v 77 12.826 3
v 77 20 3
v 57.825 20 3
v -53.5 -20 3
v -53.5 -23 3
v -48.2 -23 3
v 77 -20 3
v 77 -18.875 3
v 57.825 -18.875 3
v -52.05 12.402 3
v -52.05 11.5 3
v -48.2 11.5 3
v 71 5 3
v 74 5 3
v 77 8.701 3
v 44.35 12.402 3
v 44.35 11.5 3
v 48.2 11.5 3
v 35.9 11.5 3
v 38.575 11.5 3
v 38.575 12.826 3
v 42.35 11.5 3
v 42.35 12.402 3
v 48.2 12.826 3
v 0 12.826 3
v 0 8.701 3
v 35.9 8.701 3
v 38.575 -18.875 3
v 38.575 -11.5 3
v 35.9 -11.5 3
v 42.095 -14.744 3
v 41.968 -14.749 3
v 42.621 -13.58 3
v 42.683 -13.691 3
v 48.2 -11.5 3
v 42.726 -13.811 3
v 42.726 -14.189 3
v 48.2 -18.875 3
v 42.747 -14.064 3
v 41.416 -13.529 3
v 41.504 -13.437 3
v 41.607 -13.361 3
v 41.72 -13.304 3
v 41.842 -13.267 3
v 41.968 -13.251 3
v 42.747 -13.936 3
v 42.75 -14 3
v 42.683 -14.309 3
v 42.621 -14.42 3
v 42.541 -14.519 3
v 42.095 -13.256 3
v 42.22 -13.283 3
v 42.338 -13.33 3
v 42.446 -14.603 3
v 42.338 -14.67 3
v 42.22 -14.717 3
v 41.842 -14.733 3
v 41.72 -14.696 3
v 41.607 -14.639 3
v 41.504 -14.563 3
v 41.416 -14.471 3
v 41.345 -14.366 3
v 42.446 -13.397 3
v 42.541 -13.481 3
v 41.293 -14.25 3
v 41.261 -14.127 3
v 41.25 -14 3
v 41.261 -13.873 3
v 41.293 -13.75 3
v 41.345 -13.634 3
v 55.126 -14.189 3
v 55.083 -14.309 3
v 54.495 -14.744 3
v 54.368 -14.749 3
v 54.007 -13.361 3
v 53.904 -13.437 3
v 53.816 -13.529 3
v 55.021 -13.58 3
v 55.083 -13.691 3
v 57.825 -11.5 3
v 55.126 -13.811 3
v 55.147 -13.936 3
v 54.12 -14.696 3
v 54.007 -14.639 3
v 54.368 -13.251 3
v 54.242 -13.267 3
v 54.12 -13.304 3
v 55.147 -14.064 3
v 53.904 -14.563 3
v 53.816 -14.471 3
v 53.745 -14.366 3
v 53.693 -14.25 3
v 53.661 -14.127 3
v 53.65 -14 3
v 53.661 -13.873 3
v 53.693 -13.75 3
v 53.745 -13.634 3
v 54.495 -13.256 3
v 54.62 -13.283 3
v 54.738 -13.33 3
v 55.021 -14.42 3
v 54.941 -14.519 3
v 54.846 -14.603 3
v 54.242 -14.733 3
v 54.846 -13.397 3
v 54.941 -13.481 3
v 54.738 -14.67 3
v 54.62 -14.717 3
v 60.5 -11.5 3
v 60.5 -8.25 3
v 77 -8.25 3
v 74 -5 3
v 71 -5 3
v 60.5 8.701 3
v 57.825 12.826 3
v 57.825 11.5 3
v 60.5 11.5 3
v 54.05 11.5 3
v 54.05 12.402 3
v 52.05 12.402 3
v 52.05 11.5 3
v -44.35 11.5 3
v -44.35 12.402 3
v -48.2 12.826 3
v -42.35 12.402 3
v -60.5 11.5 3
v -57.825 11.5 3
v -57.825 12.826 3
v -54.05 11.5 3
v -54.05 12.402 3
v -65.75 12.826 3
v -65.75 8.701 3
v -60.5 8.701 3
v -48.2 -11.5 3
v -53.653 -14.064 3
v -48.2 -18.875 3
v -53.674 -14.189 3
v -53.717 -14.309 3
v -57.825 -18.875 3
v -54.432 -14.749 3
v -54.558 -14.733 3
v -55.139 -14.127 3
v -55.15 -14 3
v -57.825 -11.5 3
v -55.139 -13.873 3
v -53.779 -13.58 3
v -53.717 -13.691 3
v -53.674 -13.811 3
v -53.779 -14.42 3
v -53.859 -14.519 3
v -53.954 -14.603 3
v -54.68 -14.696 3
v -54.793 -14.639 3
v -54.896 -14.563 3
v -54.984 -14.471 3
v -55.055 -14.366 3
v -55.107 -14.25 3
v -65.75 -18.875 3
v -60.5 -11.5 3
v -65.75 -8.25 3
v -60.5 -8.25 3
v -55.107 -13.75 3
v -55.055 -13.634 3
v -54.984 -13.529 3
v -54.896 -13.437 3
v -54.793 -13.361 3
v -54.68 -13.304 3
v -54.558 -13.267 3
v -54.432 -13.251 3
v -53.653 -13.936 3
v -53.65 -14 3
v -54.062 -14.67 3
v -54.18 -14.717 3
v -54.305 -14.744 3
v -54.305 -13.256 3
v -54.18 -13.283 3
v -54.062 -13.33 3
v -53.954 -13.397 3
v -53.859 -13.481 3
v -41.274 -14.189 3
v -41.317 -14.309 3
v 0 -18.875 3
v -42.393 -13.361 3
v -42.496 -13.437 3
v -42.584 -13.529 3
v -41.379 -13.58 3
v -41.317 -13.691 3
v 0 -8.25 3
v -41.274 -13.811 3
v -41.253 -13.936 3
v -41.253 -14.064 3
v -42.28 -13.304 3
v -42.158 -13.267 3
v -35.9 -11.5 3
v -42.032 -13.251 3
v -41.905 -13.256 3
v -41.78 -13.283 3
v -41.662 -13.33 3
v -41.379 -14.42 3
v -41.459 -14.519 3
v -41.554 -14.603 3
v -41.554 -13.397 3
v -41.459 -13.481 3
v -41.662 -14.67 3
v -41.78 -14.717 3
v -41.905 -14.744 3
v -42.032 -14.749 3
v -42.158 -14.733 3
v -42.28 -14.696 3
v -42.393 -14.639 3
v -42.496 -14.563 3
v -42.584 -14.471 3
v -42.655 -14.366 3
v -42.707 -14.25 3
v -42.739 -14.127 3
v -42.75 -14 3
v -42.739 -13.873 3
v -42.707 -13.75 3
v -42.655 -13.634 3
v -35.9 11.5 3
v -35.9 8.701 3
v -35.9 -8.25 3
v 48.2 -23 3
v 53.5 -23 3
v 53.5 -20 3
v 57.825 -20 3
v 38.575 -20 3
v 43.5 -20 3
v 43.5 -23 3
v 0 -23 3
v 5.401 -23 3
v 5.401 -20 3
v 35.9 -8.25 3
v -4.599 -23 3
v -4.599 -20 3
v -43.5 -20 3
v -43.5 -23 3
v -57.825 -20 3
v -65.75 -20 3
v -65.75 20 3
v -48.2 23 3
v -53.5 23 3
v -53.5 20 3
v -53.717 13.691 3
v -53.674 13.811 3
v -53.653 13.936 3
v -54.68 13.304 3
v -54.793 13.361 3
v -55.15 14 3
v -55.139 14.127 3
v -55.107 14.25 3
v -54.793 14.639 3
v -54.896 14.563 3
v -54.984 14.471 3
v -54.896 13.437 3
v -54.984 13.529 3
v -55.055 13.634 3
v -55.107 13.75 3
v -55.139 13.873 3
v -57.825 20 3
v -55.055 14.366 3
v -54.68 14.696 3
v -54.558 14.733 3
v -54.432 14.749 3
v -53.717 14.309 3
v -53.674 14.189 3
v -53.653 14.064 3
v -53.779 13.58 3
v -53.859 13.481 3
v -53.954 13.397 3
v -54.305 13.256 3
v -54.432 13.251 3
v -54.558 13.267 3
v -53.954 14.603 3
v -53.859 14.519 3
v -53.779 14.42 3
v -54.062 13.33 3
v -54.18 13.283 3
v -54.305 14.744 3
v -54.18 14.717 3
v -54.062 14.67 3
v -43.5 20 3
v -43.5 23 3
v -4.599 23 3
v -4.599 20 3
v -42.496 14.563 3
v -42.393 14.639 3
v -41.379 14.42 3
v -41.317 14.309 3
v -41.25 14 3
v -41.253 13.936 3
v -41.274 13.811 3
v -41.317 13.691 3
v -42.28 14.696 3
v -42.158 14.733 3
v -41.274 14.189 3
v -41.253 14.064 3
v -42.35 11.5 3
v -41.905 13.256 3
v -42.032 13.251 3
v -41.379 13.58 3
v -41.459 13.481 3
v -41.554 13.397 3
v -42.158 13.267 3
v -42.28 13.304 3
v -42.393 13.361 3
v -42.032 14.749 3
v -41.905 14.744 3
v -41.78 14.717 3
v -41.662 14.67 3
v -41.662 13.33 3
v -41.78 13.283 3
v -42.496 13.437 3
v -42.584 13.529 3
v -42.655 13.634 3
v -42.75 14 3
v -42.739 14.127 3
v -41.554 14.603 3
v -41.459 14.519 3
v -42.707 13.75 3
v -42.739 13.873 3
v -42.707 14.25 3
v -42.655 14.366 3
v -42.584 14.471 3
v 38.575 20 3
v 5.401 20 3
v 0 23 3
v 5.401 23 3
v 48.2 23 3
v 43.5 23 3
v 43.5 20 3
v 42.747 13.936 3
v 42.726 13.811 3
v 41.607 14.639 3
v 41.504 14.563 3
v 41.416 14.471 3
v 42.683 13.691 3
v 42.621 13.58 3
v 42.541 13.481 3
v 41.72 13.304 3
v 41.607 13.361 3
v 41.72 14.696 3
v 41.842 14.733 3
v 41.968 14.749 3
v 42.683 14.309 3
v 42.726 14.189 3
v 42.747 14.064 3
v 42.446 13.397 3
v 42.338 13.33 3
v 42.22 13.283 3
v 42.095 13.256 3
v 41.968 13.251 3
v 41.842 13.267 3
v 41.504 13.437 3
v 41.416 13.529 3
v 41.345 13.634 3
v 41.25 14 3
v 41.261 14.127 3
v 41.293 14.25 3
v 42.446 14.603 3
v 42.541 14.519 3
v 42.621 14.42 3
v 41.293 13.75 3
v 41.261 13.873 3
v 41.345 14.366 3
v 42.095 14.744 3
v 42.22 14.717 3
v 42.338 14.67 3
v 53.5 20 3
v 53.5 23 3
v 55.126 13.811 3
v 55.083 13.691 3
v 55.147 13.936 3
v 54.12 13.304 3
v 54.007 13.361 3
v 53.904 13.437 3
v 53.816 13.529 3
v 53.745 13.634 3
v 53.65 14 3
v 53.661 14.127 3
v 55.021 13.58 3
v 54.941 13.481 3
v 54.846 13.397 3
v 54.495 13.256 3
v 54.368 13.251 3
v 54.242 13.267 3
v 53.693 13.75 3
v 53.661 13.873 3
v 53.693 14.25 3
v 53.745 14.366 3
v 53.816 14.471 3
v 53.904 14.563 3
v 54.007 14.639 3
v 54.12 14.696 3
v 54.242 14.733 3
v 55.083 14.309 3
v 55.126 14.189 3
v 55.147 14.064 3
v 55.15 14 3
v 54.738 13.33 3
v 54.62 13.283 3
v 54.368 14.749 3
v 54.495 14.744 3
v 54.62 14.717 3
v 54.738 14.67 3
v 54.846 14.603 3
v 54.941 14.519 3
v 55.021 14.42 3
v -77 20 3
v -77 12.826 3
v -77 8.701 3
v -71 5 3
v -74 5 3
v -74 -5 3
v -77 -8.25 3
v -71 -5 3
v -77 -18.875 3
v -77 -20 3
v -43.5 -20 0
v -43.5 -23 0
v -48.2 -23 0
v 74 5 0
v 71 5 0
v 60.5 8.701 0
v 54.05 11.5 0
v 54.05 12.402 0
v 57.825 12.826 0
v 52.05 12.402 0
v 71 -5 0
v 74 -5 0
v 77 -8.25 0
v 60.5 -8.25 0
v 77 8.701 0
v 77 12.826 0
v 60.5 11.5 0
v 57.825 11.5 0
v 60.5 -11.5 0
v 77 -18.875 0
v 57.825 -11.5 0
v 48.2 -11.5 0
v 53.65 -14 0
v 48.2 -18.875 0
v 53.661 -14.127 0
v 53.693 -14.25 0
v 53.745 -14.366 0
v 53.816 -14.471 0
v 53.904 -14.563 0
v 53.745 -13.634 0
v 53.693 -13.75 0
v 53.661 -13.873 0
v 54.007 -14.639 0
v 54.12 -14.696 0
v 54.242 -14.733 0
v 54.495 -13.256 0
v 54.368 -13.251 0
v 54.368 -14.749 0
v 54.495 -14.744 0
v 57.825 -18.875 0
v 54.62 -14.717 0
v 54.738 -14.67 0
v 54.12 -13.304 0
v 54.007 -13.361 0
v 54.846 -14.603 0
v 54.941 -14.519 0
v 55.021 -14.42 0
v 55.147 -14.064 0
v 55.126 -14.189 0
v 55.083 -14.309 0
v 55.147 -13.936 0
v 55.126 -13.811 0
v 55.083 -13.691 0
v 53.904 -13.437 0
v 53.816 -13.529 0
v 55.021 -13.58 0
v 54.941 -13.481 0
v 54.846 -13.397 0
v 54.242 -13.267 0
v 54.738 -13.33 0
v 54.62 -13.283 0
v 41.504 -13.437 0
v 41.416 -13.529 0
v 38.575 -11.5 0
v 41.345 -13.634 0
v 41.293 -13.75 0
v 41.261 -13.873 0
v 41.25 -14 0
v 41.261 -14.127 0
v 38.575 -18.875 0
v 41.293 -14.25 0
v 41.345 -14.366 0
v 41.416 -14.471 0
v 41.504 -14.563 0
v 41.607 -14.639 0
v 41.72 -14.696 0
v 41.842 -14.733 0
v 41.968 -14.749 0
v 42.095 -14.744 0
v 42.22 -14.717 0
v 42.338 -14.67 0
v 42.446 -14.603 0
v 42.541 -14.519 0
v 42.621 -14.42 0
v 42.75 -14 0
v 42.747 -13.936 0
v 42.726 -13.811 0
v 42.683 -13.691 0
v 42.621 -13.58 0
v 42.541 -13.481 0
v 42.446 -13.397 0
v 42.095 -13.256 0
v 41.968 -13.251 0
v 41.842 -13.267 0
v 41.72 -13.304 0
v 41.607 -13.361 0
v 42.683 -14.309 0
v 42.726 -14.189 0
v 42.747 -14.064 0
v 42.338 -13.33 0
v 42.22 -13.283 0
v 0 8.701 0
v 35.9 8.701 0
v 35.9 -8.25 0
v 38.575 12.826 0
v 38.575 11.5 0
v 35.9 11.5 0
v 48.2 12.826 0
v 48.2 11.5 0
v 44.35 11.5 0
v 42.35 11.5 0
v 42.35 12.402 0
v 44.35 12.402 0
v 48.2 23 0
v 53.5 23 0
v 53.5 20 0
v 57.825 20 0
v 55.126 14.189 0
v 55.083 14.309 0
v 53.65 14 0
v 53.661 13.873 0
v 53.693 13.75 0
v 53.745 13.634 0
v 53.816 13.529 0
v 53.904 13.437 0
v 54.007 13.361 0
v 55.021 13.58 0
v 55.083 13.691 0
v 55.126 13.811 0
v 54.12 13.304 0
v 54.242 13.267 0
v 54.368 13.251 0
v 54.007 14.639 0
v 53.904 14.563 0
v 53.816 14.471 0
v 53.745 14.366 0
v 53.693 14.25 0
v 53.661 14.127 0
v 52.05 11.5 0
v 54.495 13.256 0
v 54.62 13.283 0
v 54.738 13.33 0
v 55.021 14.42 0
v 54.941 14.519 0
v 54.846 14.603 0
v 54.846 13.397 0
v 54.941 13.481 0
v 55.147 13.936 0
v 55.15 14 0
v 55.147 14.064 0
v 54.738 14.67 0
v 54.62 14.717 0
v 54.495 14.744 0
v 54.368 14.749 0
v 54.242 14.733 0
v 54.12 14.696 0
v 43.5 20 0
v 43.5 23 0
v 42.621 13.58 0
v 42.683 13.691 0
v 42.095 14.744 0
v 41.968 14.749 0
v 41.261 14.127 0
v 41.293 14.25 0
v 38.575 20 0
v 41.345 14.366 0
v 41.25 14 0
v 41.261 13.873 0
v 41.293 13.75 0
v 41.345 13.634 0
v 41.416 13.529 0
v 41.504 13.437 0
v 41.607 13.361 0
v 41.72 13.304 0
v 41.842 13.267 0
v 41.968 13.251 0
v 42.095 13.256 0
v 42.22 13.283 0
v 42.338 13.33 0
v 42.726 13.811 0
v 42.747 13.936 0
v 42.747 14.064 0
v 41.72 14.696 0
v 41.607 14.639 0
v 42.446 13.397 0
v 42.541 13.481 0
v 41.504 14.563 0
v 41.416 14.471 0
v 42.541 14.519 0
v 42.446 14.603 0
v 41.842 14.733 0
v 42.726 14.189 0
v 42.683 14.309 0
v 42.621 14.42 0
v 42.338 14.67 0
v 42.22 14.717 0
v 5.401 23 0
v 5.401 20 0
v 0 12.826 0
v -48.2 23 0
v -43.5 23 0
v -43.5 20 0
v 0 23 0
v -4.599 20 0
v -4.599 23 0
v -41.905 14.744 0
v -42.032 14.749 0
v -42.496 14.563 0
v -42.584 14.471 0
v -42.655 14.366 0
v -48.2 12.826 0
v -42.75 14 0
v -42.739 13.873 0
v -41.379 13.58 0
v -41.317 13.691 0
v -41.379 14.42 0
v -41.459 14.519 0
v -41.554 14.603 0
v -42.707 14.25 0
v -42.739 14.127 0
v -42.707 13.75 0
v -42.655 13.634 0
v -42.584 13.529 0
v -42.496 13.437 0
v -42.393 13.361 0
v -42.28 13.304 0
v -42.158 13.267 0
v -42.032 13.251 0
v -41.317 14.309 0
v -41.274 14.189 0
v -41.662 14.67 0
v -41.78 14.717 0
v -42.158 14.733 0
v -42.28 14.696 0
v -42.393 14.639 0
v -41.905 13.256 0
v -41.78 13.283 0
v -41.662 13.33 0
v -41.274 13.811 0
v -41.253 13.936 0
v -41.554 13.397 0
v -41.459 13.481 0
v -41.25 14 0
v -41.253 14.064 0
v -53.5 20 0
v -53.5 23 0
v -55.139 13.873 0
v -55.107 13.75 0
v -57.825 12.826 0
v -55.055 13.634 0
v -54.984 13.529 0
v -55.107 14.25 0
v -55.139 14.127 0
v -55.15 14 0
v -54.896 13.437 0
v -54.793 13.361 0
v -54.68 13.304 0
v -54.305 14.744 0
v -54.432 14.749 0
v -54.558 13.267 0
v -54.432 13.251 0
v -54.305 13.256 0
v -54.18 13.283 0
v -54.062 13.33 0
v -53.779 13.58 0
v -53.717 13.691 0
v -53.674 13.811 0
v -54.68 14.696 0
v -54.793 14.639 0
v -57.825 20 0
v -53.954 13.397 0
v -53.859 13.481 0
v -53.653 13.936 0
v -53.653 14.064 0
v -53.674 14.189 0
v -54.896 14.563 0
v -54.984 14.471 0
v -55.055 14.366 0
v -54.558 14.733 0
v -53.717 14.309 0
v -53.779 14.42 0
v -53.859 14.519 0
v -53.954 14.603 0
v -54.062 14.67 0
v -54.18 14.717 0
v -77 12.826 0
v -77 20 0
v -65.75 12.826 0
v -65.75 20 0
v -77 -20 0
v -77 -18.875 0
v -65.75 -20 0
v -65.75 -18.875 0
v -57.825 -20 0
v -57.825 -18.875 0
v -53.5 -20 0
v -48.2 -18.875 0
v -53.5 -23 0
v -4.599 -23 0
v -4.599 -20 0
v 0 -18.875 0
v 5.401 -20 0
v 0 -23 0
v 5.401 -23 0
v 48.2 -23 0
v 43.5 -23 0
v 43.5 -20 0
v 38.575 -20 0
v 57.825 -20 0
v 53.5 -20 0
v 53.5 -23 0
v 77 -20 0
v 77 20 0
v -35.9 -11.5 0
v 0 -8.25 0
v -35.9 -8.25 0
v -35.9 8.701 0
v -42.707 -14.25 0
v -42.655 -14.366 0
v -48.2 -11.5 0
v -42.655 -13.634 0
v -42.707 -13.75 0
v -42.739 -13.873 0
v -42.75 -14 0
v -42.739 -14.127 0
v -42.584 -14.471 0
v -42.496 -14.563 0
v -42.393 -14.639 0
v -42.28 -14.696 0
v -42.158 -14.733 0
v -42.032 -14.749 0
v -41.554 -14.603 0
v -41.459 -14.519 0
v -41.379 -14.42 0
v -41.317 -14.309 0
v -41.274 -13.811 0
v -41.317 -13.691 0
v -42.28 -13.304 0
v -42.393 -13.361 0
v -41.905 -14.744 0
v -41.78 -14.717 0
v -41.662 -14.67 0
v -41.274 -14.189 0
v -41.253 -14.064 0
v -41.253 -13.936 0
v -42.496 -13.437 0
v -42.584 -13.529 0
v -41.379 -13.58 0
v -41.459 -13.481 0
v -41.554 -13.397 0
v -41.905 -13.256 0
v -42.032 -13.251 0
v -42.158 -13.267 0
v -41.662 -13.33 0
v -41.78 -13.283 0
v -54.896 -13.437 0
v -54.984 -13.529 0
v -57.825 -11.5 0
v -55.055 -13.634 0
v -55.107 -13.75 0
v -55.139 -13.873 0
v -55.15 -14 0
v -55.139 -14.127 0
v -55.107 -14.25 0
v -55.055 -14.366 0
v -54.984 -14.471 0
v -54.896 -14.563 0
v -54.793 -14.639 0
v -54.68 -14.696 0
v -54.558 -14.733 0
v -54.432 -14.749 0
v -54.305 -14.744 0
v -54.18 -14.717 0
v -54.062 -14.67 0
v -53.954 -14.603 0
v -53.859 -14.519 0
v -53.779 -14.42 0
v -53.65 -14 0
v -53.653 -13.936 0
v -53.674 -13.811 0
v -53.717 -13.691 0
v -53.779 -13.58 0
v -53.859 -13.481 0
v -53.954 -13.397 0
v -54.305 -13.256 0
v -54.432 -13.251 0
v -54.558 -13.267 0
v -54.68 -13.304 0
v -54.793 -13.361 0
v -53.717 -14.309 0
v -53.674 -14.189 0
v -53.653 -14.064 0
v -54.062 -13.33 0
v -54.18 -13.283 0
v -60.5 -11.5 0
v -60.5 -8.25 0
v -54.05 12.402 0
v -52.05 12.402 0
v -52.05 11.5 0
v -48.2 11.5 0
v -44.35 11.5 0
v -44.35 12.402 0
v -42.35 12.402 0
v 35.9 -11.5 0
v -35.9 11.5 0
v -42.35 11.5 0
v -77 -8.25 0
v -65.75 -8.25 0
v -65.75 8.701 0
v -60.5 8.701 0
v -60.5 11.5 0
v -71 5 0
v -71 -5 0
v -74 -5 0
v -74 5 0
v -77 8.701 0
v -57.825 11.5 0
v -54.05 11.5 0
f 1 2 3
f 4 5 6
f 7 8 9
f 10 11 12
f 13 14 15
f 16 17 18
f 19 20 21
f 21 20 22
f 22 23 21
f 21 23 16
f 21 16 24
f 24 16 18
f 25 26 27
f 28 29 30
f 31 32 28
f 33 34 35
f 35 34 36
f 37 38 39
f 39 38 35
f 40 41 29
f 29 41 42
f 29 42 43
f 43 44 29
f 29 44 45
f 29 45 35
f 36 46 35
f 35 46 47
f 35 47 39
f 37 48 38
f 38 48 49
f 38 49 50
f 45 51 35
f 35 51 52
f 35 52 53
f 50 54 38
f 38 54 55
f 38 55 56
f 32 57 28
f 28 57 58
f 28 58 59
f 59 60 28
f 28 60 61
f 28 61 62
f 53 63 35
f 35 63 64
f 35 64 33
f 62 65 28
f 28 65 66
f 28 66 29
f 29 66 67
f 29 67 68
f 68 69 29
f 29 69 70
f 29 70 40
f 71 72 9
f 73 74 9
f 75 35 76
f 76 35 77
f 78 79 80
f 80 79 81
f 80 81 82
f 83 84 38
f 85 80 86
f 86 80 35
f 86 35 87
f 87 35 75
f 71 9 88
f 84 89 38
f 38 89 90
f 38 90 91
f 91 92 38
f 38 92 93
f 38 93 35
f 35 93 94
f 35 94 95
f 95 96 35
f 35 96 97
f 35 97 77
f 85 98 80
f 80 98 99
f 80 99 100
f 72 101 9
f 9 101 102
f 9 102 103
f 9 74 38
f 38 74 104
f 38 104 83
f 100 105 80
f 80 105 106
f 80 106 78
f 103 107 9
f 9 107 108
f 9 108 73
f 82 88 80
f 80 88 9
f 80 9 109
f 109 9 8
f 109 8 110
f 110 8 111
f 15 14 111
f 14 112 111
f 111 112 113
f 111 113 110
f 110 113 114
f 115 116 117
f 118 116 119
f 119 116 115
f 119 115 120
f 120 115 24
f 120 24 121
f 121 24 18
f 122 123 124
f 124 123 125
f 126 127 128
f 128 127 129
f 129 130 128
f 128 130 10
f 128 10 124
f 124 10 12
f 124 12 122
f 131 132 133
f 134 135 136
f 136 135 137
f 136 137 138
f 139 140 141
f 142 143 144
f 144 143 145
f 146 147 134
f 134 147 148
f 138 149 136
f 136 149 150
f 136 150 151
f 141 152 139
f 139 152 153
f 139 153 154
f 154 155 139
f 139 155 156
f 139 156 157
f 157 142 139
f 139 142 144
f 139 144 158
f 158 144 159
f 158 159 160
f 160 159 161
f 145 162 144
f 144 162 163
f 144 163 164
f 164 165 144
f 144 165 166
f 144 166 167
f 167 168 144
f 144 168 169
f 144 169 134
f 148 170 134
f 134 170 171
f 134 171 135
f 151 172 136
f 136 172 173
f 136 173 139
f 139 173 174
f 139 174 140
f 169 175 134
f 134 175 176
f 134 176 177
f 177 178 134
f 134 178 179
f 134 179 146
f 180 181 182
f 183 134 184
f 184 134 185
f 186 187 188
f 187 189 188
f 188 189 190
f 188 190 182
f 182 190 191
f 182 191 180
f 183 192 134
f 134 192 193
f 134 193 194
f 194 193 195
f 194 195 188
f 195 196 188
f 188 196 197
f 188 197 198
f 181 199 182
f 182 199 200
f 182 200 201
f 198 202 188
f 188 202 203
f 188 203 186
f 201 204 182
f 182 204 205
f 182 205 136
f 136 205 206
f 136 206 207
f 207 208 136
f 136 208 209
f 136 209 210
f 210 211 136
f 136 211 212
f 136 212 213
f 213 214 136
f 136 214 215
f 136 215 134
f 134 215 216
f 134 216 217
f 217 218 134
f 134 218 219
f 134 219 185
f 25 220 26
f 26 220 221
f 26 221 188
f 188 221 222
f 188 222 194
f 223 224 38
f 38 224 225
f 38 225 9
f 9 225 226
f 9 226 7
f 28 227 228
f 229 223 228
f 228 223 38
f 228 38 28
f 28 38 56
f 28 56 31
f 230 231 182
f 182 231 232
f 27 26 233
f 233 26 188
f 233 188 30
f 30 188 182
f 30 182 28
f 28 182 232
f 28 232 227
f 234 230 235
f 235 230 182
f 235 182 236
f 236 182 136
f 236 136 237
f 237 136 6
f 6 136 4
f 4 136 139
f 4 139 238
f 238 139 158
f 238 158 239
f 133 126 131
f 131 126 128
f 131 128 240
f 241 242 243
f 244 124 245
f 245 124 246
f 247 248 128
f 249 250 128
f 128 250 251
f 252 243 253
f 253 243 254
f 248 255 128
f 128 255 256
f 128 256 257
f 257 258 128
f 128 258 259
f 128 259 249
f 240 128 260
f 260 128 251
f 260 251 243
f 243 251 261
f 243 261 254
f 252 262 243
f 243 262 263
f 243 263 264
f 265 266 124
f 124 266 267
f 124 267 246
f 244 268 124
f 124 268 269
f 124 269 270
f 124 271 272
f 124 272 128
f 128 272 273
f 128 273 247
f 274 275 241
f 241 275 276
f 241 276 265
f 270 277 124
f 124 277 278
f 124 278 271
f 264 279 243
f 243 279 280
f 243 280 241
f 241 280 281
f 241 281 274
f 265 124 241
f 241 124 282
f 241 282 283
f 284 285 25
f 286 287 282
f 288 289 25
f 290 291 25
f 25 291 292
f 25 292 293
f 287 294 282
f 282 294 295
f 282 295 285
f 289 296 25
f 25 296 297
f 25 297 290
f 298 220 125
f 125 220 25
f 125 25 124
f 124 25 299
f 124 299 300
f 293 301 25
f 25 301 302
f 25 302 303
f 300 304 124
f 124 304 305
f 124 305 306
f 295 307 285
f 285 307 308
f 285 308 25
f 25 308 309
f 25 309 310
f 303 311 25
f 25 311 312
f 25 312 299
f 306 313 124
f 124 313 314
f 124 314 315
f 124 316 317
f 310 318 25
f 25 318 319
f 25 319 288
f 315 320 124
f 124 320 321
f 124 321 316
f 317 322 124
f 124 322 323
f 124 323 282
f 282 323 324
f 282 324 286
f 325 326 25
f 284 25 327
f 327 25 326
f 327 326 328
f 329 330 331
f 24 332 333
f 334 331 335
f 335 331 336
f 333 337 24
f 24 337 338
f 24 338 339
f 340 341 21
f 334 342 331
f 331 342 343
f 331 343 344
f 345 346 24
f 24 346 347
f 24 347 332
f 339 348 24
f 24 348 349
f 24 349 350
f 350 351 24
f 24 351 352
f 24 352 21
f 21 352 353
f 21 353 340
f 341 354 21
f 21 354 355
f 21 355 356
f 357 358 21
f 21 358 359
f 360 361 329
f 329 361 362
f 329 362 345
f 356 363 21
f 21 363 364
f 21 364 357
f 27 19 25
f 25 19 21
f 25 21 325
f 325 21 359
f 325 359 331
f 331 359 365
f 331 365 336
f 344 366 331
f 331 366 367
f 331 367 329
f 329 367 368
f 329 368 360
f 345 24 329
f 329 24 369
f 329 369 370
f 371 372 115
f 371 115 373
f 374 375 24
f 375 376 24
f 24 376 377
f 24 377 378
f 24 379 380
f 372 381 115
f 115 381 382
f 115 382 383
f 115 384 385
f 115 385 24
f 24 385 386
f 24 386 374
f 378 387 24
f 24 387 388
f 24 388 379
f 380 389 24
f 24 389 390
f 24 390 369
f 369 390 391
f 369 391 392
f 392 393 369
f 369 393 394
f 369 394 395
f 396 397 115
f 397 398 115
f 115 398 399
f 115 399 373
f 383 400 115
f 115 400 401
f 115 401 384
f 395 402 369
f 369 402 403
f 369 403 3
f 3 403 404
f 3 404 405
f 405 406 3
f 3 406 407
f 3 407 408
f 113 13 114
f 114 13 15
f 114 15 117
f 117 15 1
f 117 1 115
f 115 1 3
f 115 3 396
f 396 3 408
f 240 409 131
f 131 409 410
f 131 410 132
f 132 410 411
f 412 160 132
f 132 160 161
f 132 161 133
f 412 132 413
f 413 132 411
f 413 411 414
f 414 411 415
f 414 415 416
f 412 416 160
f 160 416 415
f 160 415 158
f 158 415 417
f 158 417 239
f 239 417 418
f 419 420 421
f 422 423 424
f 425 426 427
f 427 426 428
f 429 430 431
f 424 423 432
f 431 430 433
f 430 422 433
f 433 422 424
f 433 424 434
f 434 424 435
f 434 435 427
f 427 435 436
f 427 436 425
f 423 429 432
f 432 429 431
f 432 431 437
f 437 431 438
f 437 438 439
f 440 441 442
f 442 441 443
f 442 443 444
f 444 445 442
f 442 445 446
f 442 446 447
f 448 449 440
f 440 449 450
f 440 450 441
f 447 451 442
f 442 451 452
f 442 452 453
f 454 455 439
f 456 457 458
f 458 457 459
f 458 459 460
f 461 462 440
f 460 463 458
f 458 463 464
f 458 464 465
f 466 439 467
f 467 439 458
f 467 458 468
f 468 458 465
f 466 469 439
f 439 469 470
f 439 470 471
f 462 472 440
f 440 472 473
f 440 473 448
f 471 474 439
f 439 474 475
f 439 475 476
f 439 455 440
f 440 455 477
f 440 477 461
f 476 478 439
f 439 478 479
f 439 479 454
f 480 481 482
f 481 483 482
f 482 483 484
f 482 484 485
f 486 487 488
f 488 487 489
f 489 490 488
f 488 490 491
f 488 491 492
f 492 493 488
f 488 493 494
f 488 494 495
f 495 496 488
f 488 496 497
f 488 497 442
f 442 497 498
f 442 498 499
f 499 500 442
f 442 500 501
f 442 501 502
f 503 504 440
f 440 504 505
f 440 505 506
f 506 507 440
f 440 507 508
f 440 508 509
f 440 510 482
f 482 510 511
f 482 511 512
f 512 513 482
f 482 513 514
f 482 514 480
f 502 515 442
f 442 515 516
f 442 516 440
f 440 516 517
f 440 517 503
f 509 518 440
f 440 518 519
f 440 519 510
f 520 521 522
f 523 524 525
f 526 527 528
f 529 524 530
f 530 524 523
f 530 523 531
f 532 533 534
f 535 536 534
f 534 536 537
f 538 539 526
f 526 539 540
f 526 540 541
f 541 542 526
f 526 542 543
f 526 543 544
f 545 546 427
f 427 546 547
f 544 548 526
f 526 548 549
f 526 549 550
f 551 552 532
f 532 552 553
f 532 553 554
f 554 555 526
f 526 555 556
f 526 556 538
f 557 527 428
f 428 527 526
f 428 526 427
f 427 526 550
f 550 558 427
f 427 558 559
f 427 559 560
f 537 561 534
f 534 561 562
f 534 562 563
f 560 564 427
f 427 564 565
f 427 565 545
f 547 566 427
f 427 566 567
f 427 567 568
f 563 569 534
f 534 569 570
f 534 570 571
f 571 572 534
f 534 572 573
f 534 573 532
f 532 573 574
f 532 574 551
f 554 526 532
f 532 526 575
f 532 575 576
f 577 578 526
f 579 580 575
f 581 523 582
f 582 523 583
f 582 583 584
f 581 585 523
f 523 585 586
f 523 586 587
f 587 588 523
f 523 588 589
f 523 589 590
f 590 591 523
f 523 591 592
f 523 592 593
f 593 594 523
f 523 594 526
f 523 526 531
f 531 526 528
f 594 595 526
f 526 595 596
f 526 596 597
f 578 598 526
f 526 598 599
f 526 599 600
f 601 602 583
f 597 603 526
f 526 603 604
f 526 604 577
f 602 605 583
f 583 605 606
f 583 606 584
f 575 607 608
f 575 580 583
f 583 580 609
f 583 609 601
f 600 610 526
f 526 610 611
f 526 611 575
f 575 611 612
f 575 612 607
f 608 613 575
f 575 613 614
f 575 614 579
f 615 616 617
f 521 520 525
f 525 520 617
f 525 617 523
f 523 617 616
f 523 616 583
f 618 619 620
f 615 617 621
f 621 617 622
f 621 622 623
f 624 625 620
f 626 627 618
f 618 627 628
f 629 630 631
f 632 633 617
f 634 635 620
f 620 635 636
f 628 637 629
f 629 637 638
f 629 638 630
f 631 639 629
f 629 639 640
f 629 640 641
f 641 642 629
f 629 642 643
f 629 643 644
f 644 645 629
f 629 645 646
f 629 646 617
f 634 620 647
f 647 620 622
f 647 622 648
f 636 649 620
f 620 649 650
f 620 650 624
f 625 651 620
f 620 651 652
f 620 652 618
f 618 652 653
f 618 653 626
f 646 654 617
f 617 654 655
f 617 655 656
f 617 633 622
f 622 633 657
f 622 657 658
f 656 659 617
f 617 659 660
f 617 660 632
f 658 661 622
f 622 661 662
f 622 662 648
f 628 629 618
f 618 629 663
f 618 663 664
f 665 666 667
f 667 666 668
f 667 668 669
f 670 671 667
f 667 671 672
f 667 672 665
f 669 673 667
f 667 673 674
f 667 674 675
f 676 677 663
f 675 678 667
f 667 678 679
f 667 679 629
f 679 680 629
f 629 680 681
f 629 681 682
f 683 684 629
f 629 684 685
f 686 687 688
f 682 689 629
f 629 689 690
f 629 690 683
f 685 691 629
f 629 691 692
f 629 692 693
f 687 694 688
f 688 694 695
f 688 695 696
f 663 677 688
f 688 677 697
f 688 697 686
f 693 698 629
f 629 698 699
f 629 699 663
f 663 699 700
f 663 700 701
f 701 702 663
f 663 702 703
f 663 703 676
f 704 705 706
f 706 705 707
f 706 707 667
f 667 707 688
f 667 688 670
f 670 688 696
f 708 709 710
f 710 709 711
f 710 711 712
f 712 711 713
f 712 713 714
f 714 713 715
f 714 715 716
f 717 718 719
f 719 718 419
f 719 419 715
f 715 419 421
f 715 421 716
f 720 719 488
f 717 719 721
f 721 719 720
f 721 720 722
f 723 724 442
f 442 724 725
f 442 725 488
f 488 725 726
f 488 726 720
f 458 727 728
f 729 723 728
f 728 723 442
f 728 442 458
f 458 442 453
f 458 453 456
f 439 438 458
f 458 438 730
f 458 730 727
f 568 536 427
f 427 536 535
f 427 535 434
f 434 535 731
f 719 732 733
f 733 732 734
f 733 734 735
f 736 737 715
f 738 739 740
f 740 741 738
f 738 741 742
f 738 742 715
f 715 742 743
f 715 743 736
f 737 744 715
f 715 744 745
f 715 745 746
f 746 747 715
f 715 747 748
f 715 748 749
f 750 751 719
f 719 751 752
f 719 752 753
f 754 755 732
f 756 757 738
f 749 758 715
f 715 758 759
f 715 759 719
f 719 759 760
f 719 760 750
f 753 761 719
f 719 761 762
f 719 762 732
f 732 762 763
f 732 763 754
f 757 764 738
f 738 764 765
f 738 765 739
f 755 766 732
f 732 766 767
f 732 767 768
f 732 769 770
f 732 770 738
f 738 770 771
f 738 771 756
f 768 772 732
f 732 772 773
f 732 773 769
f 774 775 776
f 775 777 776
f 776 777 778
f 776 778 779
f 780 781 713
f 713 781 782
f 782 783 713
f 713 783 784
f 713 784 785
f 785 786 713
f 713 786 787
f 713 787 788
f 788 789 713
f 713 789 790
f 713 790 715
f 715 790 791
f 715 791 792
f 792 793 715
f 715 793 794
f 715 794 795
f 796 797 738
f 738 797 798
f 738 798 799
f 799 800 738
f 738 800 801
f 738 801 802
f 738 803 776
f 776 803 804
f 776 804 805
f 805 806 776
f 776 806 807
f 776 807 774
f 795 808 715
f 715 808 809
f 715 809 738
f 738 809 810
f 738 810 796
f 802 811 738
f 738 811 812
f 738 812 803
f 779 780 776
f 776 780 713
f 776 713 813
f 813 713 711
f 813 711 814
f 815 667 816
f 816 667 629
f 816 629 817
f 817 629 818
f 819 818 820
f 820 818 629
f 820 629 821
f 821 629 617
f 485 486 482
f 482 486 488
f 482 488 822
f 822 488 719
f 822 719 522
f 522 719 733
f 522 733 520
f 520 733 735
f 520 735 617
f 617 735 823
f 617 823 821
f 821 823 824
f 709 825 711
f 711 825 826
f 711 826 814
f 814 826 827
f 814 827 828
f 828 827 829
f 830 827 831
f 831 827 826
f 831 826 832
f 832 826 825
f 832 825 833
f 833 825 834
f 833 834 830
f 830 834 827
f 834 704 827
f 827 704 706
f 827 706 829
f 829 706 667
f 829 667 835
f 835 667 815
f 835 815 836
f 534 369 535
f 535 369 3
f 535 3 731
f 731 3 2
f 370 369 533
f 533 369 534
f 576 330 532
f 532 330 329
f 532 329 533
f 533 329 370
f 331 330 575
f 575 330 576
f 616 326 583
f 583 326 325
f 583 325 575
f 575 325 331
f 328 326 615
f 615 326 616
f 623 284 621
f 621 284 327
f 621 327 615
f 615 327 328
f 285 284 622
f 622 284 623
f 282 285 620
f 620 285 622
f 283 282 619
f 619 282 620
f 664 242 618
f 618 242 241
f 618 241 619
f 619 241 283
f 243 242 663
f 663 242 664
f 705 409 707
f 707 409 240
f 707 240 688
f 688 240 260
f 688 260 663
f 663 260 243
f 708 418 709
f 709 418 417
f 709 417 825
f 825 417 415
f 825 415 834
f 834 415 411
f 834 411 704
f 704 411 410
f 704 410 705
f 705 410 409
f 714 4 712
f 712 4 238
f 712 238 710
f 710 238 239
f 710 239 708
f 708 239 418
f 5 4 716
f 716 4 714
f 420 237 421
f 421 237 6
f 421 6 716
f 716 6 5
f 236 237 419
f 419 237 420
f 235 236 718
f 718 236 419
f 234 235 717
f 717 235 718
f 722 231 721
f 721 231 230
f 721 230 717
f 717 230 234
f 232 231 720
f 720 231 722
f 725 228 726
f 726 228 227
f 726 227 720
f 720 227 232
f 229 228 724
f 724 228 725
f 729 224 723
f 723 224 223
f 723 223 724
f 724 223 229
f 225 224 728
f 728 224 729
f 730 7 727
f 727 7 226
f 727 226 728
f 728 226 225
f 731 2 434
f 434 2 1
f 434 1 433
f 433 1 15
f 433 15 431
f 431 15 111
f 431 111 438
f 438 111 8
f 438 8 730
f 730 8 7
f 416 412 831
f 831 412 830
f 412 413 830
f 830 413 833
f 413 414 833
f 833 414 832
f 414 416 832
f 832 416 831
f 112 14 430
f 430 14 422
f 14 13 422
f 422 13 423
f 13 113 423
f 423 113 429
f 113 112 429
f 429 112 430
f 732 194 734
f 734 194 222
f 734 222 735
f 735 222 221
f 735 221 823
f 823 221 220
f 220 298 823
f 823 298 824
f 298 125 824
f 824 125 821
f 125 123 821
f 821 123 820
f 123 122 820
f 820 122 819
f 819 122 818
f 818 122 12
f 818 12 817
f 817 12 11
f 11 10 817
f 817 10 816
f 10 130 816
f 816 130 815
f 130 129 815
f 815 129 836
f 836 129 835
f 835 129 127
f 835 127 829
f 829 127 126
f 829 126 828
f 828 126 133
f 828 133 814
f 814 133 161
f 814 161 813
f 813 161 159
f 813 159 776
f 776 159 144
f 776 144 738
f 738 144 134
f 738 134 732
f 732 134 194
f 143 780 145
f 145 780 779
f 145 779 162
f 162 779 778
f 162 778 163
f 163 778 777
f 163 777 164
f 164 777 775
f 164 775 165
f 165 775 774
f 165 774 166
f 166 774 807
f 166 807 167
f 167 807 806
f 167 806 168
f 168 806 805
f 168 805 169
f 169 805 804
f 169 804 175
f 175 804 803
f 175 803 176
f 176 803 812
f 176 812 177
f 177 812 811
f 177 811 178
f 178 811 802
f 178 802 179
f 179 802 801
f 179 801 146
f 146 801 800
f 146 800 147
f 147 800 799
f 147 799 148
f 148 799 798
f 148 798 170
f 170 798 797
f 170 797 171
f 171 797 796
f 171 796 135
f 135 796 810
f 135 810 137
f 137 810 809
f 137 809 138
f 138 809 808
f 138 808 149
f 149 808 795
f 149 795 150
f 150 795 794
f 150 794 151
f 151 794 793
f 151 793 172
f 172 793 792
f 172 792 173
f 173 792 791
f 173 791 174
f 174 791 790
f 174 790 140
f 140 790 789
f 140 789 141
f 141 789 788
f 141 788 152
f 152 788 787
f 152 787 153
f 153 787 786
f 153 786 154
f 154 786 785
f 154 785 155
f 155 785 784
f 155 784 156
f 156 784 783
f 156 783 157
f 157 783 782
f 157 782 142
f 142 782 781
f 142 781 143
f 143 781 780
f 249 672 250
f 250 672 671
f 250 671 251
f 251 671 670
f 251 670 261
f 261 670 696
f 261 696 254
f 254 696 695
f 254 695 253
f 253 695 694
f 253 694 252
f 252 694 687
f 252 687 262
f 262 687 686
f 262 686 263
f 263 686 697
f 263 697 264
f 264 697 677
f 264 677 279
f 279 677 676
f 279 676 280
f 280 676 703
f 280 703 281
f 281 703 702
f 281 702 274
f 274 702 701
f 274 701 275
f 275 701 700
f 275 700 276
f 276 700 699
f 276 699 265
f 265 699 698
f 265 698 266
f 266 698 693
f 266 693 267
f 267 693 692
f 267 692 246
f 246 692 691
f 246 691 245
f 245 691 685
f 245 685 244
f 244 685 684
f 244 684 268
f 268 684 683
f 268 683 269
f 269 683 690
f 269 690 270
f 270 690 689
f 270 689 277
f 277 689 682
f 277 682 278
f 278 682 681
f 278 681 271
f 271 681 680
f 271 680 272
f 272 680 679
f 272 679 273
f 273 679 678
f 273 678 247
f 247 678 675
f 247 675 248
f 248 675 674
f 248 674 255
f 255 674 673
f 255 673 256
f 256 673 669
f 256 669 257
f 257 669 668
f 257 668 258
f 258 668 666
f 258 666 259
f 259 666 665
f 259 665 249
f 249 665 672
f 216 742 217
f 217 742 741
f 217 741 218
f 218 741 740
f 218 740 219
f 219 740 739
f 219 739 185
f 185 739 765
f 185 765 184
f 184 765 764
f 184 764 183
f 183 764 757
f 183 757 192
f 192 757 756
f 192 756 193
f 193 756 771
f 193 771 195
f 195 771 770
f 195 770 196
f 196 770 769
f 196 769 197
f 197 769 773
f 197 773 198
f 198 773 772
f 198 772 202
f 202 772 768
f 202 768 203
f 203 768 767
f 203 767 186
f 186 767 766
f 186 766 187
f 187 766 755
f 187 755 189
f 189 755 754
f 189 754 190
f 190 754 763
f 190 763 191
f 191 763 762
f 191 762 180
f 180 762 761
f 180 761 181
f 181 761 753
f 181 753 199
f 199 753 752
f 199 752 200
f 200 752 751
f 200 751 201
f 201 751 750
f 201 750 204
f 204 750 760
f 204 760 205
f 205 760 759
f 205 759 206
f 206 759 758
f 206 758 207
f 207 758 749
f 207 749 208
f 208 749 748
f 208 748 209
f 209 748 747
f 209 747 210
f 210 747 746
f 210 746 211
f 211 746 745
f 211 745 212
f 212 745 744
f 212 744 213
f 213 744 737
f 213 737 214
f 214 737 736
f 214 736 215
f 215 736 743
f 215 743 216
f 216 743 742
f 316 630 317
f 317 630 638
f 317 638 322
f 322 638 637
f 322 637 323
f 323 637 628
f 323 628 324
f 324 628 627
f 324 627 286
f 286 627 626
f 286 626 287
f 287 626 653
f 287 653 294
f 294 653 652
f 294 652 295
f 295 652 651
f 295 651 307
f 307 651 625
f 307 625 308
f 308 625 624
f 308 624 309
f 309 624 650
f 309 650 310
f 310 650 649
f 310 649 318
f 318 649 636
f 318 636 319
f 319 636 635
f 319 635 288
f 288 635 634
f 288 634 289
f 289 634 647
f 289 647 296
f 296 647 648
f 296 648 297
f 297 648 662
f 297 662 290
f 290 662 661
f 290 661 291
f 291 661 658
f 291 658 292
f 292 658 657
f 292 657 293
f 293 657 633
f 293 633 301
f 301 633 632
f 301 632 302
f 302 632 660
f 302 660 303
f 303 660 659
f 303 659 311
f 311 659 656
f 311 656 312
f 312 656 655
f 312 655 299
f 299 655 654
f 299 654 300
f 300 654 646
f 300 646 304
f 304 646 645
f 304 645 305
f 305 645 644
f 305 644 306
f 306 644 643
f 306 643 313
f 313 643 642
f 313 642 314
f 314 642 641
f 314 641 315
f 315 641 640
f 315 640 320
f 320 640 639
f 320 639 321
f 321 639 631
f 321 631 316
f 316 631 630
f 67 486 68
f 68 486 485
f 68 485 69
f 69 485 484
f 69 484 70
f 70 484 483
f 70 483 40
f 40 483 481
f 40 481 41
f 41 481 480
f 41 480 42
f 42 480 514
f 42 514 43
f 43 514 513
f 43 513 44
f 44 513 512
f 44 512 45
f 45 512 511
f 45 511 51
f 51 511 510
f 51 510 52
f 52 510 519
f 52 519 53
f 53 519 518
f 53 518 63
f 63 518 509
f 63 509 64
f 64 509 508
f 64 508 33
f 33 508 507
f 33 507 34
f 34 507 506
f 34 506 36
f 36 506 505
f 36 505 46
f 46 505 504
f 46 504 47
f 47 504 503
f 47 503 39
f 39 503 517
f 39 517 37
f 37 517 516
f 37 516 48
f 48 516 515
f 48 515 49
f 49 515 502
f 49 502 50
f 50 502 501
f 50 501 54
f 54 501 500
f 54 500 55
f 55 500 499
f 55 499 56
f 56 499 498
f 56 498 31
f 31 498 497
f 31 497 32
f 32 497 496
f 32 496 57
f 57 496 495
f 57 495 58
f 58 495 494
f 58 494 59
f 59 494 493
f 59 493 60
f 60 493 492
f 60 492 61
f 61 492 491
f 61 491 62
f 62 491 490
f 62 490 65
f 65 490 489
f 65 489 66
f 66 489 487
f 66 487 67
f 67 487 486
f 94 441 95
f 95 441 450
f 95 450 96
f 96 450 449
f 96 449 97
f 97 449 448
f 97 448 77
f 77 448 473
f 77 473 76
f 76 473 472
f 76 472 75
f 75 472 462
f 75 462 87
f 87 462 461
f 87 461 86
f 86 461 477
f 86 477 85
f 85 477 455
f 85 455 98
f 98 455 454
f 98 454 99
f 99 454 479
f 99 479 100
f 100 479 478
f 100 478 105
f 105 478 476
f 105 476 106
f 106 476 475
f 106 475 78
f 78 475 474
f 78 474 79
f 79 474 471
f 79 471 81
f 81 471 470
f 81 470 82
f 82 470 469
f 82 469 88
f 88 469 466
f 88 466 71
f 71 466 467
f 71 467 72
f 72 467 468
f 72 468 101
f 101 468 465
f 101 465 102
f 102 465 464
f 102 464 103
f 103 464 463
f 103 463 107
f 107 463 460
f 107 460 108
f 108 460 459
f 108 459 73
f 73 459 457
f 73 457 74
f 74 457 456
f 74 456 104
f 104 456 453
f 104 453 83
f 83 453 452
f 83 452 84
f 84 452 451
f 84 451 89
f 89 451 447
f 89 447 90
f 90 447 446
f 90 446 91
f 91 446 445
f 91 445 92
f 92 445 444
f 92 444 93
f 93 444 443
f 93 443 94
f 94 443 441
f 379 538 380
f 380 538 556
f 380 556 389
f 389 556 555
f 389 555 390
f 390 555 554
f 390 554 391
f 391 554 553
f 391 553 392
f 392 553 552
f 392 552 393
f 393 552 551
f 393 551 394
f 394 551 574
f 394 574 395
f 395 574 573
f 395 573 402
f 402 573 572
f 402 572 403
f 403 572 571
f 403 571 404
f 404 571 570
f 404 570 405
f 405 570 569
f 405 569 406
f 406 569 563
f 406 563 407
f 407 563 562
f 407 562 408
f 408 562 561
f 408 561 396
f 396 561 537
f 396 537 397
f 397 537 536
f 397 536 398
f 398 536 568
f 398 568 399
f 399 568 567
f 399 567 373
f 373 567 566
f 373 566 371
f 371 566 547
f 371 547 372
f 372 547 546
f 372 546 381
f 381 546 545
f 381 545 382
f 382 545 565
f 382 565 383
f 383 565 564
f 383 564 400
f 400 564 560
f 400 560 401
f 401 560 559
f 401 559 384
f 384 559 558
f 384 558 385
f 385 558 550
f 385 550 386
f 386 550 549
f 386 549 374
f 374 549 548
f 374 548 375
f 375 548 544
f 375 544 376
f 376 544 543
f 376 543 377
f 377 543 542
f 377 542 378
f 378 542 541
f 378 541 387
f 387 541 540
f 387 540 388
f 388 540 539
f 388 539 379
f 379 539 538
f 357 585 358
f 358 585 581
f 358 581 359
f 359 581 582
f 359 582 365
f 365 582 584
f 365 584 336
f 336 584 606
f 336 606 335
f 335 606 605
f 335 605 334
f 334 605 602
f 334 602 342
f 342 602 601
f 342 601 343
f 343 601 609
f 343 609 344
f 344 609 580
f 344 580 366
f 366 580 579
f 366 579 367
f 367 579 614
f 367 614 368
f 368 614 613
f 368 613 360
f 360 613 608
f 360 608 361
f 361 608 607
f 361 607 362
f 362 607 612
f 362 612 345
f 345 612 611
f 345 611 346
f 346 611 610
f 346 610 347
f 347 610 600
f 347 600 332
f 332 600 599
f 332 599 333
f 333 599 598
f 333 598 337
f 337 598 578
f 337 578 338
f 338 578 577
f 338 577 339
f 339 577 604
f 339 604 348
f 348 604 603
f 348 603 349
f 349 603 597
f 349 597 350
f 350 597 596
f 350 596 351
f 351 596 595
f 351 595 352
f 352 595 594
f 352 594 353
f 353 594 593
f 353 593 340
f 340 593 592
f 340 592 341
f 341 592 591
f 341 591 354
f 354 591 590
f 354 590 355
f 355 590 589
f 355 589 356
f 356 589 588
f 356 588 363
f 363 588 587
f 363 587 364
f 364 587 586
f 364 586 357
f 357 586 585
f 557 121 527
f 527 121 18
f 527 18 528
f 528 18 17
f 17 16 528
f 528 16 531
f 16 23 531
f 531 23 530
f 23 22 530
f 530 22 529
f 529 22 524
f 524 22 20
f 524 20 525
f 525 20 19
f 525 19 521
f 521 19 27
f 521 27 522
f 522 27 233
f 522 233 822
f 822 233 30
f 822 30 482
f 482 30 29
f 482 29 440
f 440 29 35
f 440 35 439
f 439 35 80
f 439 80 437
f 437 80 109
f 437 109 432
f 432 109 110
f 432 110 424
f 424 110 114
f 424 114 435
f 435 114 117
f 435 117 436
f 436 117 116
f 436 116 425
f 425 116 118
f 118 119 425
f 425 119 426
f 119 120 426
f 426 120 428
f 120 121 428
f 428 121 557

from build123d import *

# Parameters (mm, degrees)
SKETCH_1_R      = 0.75
SKETCH_1_W      = 3
SKETCH_1_H      = 10
EXTRUDE_1_DEPTH = 3


with BuildPart() as part:
    # 草图1 → 凸台-拉伸1 (new body)
    with BuildSketch(Plane.XY):
        Polygon((-43.5, -20), (-4.599481492, -20), (-4.599481492, -23), (5.400518508, -23), (5.400518508, -20), (43.5, -20), (43.5, -23), (53.5, -23), (53.5, -20), (77, -20), (77, 20), (53.5, 20), (53.5, 23), (43.5, 23), (43.5, 20), (5.400518508, 20), (5.400518508, 23), (-4.599481492, 23), (-4.599481492, 20), (-43.5, 20), (-43.5, 23), (-53.5, 23), (-53.5, 20), (-77, 20), (-77, -20), (-53.5, -20), (-53.5, -23), (-43.5, -23), align=None)
        with Locations((-54.4, -14)):
            Circle(SKETCH_1_R, mode=Mode.SUBTRACT)
        with Locations(Location((-54.4, 14, 0), (0, 0, 180))):
            Circle(SKETCH_1_R, mode=Mode.SUBTRACT)
        with Locations(Location((-42, -14, 0), (0, 0, 180))):
            Circle(SKETCH_1_R, mode=Mode.SUBTRACT)
        with Locations((-42, 14)):
            Circle(SKETCH_1_R, mode=Mode.SUBTRACT)
        with Locations((42, -14)):
            Circle(SKETCH_1_R, mode=Mode.SUBTRACT)
        with Locations(Location((54.4, -14, 0), (0, 0, 180))):
            Circle(SKETCH_1_R, mode=Mode.SUBTRACT)
        with Locations((54.4, 14)):
            Circle(SKETCH_1_R, mode=Mode.SUBTRACT)
        with Locations(Location((42, 14, 0), (0, 0, 180))):
            Circle(SKETCH_1_R, mode=Mode.SUBTRACT)
        with Locations((-72.5, 0)):
            Rectangle(SKETCH_1_W, SKETCH_1_H, mode=Mode.SUBTRACT)
        with Locations((72.5, 0)):
            Rectangle(SKETCH_1_W, SKETCH_1_H, mode=Mode.SUBTRACT)
        Polygon((-60.5, 11.5), (-54.05, 11.5), (-54.05, 12.40163795), (-52.05, 12.40163795), (-52.05, 11.5), (-44.35, 11.5), (-44.35, 12.40163795), (-42.35, 12.40163795), (-42.35, 11.5), (-35.9, 11.5), (-35.9, -11.5), (-60.5, -11.5), align=None, mode=Mode.SUBTRACT)
        Polygon((52.05, 11.5), (52.05, 12.40163795), (54.05, 12.40163795), (54.05, 11.5), (60.5, 11.5), (60.5, -11.5), (35.9, -11.5), (35.9, 11.5), (42.35, 11.5), (42.35, 12.40163795), (44.35, 12.40163795), (44.35, 11.5), align=None, mode=Mode.SUBTRACT)
    extrude(amount=EXTRUDE_1_DEPTH)


solid = part.part
